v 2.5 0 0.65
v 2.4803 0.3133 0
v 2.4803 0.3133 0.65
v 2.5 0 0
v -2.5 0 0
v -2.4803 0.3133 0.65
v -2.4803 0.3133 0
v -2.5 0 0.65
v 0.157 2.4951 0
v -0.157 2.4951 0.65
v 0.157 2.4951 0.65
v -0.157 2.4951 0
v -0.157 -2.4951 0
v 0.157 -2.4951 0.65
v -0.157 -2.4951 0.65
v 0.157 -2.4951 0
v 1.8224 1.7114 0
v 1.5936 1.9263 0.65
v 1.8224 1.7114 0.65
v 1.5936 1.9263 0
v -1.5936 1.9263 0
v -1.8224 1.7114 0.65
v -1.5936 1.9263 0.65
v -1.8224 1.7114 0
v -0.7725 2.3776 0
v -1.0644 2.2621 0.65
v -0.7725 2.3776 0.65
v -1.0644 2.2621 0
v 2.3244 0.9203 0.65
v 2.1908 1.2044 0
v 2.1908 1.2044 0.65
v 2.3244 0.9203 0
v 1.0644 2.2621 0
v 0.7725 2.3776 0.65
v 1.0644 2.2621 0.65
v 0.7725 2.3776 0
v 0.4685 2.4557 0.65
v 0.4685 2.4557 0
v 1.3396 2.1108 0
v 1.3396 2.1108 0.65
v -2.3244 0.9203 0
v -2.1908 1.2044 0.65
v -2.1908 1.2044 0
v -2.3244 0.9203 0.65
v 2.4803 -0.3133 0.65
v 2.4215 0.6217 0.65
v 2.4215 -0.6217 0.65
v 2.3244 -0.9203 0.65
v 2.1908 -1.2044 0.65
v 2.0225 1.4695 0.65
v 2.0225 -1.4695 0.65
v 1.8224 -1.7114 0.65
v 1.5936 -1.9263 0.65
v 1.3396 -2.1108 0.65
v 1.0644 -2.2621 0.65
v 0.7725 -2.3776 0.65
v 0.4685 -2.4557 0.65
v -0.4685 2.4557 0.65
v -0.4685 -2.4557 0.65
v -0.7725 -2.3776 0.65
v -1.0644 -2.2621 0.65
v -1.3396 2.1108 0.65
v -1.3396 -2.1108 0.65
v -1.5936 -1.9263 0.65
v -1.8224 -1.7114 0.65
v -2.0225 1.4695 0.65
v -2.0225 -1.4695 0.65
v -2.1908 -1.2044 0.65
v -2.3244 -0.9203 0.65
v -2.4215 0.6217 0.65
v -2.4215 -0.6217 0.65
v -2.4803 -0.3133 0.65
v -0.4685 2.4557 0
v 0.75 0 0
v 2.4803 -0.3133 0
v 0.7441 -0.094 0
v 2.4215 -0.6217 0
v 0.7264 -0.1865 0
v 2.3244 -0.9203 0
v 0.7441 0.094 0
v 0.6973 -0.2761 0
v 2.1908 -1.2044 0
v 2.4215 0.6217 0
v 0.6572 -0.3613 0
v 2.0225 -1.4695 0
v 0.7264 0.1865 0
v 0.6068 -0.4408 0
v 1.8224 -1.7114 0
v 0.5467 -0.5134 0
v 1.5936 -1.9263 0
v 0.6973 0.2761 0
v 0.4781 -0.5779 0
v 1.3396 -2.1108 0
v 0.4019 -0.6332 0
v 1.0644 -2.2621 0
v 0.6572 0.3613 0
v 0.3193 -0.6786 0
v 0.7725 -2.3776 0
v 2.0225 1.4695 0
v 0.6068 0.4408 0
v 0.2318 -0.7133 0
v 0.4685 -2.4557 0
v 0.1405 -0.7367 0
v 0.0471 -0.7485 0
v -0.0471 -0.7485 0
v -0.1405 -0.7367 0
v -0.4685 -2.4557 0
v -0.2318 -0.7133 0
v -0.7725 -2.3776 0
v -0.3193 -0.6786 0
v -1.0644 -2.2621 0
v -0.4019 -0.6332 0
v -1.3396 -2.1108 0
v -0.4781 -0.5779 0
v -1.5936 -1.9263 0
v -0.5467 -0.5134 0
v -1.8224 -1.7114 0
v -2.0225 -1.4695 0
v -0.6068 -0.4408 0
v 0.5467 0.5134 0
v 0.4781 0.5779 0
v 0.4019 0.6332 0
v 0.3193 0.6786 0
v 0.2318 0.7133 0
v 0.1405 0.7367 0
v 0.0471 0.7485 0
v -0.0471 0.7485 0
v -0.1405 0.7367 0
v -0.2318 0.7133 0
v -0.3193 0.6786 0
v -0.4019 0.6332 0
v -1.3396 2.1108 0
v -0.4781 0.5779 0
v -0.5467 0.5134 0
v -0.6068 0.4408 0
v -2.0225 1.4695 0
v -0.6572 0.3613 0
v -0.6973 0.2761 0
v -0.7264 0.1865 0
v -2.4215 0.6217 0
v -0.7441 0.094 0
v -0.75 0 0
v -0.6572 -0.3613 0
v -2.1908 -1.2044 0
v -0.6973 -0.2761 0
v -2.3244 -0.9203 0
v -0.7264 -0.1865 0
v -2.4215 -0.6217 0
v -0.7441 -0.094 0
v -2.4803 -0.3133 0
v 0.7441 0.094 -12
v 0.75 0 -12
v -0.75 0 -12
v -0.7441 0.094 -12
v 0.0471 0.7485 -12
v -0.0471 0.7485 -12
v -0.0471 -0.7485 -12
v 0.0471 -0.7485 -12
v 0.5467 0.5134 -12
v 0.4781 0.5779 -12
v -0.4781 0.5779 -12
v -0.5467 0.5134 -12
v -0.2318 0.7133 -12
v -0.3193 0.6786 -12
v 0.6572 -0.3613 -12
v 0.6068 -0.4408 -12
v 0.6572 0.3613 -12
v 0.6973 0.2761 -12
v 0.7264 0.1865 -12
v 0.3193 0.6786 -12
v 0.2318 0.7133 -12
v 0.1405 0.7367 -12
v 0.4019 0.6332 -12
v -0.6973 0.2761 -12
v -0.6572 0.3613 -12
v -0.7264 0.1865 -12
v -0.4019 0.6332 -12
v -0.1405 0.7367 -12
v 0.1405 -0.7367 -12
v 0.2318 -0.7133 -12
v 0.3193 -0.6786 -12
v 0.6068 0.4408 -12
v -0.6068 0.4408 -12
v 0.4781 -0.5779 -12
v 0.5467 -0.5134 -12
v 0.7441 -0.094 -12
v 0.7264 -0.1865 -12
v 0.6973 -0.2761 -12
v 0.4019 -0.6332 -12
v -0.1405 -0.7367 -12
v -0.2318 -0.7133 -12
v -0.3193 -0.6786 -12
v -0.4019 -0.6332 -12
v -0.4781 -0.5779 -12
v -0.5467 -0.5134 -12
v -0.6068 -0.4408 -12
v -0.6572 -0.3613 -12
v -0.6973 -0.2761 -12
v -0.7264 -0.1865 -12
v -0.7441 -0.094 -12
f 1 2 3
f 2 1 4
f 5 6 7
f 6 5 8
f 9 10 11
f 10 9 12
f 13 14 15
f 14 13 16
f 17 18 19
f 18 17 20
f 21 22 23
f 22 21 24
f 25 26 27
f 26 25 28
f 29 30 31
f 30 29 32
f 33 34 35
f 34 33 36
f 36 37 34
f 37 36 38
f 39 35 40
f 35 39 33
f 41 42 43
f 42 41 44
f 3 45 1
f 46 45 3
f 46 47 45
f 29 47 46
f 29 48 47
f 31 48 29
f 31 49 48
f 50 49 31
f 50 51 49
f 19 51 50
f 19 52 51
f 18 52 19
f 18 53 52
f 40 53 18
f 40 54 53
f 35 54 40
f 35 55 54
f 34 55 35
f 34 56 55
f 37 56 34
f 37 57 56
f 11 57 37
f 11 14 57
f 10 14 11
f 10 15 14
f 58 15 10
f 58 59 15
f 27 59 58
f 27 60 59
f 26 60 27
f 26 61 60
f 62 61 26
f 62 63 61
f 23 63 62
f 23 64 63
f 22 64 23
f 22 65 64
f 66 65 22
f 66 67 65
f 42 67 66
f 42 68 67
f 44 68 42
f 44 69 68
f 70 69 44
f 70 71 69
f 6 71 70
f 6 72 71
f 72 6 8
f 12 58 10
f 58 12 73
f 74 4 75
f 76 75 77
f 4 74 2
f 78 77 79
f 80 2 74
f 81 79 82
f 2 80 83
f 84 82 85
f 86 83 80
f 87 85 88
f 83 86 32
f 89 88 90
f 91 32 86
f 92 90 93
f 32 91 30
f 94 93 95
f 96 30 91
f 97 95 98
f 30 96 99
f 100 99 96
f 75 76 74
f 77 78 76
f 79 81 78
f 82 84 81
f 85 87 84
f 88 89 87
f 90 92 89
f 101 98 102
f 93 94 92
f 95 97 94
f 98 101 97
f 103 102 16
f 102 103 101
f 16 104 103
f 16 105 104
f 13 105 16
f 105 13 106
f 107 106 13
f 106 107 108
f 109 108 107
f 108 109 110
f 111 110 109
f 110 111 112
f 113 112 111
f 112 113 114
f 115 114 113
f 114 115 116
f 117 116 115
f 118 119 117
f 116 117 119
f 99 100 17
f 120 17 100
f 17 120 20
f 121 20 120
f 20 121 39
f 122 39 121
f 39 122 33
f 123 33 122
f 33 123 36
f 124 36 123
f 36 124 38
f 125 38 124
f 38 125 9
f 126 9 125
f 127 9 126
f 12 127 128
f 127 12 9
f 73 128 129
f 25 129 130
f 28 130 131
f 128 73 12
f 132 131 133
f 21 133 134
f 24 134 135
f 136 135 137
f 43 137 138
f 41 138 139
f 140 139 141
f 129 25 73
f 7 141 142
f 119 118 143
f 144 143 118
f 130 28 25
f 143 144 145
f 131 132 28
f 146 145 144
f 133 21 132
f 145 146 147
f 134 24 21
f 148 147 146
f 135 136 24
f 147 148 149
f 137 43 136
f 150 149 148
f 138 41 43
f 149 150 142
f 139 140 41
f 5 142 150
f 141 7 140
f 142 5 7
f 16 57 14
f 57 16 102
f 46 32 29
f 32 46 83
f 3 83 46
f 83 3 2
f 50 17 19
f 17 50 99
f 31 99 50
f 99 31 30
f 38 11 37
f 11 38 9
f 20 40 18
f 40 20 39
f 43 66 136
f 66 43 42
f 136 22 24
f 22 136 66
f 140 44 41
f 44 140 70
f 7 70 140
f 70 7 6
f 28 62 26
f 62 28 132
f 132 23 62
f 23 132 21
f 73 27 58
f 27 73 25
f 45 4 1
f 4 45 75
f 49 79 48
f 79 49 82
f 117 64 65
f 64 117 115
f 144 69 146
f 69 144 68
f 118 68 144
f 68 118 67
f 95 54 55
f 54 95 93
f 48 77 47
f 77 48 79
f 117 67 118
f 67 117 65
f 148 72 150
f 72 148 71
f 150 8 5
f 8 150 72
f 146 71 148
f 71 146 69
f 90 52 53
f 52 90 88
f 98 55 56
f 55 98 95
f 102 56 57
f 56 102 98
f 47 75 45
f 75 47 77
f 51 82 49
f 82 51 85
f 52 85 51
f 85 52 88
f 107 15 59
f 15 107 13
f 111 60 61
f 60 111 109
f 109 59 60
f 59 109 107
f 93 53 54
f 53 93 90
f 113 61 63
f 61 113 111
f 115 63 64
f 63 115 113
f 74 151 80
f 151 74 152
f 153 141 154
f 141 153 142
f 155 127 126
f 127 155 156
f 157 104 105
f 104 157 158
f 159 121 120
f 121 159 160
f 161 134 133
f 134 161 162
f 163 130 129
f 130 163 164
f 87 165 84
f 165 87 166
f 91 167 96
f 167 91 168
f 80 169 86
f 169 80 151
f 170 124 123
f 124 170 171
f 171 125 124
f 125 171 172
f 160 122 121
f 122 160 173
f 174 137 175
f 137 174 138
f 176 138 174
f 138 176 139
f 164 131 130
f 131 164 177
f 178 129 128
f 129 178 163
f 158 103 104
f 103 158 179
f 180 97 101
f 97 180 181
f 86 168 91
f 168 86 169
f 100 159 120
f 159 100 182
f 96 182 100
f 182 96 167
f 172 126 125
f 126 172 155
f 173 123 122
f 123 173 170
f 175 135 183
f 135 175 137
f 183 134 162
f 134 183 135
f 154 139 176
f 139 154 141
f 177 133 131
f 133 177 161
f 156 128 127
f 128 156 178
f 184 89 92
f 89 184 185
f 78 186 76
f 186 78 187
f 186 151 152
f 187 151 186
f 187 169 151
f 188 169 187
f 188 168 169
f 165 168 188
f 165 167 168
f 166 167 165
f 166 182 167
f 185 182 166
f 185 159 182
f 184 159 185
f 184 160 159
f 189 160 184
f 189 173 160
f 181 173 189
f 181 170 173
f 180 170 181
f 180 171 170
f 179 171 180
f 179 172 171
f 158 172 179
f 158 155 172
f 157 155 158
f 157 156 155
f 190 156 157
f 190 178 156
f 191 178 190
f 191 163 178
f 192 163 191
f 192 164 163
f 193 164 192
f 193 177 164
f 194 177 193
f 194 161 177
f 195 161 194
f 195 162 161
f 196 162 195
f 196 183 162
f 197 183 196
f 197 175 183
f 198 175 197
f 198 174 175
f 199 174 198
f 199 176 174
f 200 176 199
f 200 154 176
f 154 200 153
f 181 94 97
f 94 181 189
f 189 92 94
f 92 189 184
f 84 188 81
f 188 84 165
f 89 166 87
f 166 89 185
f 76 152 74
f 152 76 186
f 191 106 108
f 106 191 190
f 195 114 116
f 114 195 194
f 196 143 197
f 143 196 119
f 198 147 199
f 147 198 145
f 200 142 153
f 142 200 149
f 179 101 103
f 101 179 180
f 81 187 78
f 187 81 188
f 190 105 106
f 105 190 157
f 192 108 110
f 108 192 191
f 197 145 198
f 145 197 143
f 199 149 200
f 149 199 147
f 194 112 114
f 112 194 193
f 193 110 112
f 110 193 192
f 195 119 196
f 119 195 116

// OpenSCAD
$fn = 50;


difference() {
	union() {
		translate(v = [0, 0, 0]) {
			rotate(a = [0, 0, 0]) {
				cylinder(h = 0.6500000000, r = 2.5000000000);
			}
		}
		translate(v = [0, 0, -12]) {
			rotate(a = [0, 0, 0]) {
				cylinder(h = 12, r = 0.7500000000);
			}
		}
	}
	union();
}
